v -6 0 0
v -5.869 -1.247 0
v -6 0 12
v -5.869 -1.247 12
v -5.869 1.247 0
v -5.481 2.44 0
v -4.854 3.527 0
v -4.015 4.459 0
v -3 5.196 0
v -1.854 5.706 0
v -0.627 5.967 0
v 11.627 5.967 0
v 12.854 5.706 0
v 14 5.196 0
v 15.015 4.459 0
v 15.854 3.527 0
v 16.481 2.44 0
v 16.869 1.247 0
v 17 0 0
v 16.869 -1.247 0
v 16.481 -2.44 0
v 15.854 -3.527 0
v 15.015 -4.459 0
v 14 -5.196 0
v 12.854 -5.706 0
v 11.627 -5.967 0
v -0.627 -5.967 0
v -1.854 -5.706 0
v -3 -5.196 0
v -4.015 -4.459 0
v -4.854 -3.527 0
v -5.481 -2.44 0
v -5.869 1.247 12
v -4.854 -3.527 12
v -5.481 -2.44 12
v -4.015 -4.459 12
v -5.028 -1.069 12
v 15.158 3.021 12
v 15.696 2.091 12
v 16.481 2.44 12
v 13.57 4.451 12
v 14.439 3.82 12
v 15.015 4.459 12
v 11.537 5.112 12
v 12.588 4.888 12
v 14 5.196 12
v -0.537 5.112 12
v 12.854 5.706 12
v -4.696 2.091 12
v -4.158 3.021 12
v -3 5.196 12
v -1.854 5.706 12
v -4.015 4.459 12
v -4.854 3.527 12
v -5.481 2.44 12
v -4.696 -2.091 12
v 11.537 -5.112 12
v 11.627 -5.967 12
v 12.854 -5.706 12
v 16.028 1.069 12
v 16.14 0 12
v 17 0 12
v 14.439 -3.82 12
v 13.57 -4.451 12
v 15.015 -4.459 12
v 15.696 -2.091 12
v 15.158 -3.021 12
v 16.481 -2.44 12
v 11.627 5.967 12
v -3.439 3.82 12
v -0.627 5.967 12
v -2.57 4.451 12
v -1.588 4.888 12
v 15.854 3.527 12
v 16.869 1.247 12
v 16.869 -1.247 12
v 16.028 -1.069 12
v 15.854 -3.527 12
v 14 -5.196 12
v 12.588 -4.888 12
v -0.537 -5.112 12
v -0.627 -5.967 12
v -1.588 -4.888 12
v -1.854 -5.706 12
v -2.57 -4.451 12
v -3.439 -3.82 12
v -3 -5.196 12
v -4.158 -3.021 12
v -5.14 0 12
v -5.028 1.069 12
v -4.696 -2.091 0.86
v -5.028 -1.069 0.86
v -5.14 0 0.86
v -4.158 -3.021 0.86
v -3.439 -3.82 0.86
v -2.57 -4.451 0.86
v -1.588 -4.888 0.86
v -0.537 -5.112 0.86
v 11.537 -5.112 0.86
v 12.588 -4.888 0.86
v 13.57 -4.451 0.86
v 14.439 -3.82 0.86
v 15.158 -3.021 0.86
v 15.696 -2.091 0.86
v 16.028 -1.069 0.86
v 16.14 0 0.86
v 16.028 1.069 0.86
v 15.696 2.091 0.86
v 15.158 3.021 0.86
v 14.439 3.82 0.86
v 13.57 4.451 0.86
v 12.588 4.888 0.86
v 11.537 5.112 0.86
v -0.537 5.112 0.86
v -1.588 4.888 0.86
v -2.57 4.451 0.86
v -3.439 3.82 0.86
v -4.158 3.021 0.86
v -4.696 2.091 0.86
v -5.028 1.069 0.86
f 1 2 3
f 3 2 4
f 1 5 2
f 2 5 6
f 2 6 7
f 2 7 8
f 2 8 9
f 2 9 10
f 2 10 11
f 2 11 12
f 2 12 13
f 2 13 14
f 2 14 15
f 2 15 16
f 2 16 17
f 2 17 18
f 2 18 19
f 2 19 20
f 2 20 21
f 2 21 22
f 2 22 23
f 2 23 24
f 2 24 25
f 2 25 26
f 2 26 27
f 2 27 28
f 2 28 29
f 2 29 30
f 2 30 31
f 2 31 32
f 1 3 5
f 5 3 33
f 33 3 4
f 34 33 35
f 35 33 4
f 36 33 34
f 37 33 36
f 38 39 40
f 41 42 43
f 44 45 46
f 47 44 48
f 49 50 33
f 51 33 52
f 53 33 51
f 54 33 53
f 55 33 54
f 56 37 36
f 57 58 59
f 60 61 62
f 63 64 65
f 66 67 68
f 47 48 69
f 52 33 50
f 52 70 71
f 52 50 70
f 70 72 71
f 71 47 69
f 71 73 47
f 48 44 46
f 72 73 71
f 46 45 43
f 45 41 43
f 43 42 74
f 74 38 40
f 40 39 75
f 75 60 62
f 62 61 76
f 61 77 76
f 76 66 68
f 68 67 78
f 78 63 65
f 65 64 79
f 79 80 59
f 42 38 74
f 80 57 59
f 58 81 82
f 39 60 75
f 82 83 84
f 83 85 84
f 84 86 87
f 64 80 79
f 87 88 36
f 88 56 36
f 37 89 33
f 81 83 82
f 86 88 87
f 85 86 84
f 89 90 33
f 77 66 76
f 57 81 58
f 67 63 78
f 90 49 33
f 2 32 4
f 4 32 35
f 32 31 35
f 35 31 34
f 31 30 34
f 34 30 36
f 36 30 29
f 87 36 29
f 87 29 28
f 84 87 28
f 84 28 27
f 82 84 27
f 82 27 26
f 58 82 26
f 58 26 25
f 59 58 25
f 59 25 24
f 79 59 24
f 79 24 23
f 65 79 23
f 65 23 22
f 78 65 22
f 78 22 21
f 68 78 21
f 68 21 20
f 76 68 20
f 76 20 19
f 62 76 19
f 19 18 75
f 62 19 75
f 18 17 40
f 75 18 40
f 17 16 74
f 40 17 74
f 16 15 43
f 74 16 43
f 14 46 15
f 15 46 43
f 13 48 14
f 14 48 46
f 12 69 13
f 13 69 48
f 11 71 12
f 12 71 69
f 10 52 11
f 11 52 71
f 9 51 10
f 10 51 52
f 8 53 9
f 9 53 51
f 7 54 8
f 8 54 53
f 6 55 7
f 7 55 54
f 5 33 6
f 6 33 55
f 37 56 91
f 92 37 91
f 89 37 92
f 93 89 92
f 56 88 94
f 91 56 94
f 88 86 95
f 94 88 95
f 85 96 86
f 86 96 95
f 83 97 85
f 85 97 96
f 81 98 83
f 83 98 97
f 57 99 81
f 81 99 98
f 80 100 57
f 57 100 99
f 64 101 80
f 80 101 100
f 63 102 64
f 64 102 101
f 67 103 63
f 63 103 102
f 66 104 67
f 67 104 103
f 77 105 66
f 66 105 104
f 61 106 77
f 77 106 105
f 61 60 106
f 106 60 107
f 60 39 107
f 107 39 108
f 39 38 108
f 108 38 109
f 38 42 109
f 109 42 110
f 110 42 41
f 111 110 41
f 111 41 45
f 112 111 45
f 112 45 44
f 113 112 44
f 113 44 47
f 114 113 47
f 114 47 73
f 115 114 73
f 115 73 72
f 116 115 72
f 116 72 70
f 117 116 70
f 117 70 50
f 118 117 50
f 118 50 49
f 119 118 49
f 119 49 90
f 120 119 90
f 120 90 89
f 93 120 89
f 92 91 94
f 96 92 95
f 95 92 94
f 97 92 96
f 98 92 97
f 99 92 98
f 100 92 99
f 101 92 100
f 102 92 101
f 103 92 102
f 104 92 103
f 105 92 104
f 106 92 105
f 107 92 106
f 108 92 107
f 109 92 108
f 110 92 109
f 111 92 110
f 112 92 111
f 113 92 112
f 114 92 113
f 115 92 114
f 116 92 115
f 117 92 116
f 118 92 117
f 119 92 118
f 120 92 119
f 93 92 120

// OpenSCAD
$fn=30;
$fn=30;
outside_rad = 6;
height=12;
difference()
{
	hull()
	{
		cylinder(h=height, r=outside_rad);
		translate([11,0,0])cylinder(h=height, r=outside_rad);
	}

	translate([0,0,.86])
	hull()
	{
		cylinder(h=height, r=outside_rad - .86);
		translate([11,0,0])cylinder(h=height, r=outside_rad -.86);
	}	
}
